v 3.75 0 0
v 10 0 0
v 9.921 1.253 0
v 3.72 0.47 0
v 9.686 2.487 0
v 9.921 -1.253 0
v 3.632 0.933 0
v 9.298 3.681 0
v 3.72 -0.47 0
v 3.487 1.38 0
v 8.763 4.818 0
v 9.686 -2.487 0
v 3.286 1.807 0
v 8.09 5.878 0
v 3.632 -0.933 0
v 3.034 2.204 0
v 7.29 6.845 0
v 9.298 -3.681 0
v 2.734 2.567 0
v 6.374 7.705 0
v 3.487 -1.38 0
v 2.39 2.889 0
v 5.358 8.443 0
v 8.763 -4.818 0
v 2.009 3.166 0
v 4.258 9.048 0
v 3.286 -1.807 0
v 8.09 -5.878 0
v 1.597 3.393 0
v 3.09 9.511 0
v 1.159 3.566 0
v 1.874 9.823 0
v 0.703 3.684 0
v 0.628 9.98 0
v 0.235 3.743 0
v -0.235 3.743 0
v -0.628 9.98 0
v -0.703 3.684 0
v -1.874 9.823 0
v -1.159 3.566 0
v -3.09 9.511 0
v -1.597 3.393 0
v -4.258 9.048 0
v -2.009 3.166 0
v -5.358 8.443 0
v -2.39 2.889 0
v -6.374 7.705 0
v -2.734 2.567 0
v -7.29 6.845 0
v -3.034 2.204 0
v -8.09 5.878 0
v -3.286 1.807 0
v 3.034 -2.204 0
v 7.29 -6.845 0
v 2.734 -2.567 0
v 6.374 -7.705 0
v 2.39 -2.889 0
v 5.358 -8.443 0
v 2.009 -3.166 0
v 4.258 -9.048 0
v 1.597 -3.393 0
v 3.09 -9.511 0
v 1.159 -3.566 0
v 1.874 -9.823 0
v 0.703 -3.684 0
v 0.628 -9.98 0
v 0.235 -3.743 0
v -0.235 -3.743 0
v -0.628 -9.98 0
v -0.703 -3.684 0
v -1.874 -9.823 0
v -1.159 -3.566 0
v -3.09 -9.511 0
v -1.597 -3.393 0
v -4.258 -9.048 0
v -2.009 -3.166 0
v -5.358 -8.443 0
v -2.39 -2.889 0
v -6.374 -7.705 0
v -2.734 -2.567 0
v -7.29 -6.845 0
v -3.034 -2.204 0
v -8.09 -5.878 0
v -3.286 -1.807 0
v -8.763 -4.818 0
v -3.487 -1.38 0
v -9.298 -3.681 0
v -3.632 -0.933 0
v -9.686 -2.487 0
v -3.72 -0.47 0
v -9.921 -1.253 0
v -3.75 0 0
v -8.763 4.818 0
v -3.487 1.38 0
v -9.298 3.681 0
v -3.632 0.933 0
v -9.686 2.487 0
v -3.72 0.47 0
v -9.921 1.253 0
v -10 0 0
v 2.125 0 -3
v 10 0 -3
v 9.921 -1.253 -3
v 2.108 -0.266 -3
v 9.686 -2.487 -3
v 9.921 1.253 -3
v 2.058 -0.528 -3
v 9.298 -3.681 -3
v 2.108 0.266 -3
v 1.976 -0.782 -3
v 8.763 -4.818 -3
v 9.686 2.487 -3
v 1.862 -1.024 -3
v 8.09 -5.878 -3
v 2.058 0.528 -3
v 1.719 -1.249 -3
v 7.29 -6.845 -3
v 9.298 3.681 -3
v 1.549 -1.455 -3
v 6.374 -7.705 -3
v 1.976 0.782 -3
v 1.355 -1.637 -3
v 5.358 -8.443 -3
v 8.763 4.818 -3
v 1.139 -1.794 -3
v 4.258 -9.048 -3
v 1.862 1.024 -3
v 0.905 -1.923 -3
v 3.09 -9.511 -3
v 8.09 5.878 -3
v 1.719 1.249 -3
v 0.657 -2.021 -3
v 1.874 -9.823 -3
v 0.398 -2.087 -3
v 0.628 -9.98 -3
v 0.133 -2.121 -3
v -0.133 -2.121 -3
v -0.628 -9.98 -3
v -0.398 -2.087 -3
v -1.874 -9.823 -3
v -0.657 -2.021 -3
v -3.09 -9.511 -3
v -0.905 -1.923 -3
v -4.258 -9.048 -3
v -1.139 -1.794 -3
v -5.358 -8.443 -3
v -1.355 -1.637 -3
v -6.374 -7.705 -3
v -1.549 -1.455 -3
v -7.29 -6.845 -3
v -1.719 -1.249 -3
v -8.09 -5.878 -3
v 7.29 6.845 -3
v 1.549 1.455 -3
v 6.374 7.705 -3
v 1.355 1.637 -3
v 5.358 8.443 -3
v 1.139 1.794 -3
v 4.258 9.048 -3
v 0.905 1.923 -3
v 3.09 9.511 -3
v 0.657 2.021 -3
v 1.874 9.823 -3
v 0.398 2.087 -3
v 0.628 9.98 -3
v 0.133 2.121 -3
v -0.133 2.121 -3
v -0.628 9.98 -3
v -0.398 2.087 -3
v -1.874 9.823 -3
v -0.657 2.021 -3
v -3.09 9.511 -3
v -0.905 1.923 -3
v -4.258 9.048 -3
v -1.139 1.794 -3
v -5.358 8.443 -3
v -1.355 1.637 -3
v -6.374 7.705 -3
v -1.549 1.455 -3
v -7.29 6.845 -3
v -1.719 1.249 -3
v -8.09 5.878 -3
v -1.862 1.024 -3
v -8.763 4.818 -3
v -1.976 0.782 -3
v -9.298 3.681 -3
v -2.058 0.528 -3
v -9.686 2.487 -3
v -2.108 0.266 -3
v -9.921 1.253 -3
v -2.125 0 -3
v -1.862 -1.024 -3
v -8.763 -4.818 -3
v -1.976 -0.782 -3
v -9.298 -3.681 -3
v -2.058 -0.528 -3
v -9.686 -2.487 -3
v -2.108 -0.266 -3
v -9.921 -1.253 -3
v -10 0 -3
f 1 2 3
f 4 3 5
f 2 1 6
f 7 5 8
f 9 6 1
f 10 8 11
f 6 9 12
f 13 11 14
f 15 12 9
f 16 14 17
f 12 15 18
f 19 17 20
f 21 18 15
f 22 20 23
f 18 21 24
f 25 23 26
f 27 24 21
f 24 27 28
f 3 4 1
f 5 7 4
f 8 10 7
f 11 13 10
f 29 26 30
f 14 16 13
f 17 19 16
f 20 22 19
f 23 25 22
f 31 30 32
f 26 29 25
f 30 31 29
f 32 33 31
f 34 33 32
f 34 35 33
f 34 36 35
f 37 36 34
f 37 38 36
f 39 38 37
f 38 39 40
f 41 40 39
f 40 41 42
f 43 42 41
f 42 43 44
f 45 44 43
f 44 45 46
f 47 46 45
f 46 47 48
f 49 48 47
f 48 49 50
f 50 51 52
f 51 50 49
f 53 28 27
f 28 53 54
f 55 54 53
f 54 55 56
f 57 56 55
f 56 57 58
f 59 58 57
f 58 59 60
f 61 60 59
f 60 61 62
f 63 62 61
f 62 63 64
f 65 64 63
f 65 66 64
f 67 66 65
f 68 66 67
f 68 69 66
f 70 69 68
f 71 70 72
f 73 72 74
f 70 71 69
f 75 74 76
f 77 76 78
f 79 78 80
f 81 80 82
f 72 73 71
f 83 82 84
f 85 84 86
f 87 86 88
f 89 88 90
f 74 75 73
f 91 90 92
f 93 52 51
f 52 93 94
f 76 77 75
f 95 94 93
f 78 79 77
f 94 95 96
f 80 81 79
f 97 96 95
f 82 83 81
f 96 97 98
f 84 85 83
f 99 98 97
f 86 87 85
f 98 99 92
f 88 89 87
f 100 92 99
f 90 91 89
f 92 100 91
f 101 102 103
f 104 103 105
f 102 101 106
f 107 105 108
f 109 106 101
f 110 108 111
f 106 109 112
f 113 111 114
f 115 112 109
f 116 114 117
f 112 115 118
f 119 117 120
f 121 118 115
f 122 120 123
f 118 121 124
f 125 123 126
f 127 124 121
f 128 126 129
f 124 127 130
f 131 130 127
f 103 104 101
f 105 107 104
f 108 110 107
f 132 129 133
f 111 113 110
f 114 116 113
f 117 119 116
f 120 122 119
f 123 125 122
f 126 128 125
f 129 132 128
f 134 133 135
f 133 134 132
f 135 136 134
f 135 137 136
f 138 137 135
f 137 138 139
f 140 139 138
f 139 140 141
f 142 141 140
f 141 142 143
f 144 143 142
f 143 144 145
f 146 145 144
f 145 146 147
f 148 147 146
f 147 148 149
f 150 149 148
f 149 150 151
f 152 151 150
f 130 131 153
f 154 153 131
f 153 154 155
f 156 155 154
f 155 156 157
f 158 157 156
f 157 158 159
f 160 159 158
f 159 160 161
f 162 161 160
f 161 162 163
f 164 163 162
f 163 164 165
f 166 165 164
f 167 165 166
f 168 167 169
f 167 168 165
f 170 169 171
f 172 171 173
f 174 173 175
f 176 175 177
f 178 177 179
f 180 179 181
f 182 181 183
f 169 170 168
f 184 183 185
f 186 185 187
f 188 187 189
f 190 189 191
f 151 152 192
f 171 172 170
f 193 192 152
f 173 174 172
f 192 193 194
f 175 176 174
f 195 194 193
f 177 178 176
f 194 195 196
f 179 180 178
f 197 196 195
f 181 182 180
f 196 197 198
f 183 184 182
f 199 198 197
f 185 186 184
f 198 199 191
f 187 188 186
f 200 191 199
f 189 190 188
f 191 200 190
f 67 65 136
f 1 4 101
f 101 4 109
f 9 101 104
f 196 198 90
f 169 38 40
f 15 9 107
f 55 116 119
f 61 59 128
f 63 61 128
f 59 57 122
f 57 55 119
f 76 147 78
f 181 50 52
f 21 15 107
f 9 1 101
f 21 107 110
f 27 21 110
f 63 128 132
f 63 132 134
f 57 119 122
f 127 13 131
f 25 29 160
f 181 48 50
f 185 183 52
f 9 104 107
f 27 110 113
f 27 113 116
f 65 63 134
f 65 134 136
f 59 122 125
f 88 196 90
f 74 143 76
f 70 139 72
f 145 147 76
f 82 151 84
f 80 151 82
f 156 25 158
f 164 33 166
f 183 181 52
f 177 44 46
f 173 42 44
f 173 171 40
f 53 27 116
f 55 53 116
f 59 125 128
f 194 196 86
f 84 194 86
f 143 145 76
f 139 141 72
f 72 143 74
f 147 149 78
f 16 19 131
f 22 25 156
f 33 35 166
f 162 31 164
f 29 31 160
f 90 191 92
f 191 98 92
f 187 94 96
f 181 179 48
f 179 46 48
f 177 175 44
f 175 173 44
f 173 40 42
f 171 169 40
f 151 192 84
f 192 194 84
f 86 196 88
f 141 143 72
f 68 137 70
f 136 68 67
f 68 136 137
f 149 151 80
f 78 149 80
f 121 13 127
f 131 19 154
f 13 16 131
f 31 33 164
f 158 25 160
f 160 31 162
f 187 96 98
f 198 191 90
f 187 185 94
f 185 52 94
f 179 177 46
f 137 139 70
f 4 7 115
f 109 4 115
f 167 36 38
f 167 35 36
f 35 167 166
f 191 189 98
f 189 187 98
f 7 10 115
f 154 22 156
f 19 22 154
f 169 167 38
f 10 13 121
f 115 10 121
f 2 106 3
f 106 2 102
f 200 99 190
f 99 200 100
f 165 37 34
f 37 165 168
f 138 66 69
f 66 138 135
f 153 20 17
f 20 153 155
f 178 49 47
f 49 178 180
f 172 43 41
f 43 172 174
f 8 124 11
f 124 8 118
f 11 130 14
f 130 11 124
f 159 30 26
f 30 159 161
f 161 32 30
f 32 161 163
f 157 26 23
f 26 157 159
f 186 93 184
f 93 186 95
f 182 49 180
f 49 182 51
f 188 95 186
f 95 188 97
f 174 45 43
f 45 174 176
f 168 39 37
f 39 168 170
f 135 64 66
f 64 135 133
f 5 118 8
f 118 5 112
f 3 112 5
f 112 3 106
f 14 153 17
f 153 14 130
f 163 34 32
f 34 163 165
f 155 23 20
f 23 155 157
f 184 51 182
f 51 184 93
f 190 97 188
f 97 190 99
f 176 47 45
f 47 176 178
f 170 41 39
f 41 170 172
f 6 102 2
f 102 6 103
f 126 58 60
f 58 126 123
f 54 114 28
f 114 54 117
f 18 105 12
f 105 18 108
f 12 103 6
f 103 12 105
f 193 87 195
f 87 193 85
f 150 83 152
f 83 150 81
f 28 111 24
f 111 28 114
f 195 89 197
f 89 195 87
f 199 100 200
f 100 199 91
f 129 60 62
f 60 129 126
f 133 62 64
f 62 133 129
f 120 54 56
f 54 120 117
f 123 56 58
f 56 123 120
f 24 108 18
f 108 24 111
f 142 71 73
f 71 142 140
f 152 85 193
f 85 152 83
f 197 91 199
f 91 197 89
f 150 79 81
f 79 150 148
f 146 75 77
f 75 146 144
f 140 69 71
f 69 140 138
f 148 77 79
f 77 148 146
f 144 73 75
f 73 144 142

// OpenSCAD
$fn = 50;


difference() {
	union() {
		translate(v = [0, 0, -3.0000000000]) {
			cylinder(h = 3, r = 10.0000000000);
		}
		cylinder(h = 0, r = 20.0000000000);
	}
	union() {
		translate(v = [0, 0, 0]) {
			rotate(a = [0, 0, 0]) {
				difference() {
					union() {
						#translate(v = [0, 0, -3.0000000000]) {
							cylinder(h = 3, r = 2.0000000000);
						}
						#translate(v = [0, 0, -3]) {
							cylinder(h = 3, r1 = 2.1250000000, r2 = 3.7500000000);
						}
						#translate(v = [0, 0, -3.0000000000]) {
							cylinder(h = 3, r = 2.1250000000);
						}
						#translate(v = [0, 0, -3.0000000000]) {
							cylinder(h = 3, r = 2.0000000000);
						}
					}
					union();
				}
			}
		}
	}
}
